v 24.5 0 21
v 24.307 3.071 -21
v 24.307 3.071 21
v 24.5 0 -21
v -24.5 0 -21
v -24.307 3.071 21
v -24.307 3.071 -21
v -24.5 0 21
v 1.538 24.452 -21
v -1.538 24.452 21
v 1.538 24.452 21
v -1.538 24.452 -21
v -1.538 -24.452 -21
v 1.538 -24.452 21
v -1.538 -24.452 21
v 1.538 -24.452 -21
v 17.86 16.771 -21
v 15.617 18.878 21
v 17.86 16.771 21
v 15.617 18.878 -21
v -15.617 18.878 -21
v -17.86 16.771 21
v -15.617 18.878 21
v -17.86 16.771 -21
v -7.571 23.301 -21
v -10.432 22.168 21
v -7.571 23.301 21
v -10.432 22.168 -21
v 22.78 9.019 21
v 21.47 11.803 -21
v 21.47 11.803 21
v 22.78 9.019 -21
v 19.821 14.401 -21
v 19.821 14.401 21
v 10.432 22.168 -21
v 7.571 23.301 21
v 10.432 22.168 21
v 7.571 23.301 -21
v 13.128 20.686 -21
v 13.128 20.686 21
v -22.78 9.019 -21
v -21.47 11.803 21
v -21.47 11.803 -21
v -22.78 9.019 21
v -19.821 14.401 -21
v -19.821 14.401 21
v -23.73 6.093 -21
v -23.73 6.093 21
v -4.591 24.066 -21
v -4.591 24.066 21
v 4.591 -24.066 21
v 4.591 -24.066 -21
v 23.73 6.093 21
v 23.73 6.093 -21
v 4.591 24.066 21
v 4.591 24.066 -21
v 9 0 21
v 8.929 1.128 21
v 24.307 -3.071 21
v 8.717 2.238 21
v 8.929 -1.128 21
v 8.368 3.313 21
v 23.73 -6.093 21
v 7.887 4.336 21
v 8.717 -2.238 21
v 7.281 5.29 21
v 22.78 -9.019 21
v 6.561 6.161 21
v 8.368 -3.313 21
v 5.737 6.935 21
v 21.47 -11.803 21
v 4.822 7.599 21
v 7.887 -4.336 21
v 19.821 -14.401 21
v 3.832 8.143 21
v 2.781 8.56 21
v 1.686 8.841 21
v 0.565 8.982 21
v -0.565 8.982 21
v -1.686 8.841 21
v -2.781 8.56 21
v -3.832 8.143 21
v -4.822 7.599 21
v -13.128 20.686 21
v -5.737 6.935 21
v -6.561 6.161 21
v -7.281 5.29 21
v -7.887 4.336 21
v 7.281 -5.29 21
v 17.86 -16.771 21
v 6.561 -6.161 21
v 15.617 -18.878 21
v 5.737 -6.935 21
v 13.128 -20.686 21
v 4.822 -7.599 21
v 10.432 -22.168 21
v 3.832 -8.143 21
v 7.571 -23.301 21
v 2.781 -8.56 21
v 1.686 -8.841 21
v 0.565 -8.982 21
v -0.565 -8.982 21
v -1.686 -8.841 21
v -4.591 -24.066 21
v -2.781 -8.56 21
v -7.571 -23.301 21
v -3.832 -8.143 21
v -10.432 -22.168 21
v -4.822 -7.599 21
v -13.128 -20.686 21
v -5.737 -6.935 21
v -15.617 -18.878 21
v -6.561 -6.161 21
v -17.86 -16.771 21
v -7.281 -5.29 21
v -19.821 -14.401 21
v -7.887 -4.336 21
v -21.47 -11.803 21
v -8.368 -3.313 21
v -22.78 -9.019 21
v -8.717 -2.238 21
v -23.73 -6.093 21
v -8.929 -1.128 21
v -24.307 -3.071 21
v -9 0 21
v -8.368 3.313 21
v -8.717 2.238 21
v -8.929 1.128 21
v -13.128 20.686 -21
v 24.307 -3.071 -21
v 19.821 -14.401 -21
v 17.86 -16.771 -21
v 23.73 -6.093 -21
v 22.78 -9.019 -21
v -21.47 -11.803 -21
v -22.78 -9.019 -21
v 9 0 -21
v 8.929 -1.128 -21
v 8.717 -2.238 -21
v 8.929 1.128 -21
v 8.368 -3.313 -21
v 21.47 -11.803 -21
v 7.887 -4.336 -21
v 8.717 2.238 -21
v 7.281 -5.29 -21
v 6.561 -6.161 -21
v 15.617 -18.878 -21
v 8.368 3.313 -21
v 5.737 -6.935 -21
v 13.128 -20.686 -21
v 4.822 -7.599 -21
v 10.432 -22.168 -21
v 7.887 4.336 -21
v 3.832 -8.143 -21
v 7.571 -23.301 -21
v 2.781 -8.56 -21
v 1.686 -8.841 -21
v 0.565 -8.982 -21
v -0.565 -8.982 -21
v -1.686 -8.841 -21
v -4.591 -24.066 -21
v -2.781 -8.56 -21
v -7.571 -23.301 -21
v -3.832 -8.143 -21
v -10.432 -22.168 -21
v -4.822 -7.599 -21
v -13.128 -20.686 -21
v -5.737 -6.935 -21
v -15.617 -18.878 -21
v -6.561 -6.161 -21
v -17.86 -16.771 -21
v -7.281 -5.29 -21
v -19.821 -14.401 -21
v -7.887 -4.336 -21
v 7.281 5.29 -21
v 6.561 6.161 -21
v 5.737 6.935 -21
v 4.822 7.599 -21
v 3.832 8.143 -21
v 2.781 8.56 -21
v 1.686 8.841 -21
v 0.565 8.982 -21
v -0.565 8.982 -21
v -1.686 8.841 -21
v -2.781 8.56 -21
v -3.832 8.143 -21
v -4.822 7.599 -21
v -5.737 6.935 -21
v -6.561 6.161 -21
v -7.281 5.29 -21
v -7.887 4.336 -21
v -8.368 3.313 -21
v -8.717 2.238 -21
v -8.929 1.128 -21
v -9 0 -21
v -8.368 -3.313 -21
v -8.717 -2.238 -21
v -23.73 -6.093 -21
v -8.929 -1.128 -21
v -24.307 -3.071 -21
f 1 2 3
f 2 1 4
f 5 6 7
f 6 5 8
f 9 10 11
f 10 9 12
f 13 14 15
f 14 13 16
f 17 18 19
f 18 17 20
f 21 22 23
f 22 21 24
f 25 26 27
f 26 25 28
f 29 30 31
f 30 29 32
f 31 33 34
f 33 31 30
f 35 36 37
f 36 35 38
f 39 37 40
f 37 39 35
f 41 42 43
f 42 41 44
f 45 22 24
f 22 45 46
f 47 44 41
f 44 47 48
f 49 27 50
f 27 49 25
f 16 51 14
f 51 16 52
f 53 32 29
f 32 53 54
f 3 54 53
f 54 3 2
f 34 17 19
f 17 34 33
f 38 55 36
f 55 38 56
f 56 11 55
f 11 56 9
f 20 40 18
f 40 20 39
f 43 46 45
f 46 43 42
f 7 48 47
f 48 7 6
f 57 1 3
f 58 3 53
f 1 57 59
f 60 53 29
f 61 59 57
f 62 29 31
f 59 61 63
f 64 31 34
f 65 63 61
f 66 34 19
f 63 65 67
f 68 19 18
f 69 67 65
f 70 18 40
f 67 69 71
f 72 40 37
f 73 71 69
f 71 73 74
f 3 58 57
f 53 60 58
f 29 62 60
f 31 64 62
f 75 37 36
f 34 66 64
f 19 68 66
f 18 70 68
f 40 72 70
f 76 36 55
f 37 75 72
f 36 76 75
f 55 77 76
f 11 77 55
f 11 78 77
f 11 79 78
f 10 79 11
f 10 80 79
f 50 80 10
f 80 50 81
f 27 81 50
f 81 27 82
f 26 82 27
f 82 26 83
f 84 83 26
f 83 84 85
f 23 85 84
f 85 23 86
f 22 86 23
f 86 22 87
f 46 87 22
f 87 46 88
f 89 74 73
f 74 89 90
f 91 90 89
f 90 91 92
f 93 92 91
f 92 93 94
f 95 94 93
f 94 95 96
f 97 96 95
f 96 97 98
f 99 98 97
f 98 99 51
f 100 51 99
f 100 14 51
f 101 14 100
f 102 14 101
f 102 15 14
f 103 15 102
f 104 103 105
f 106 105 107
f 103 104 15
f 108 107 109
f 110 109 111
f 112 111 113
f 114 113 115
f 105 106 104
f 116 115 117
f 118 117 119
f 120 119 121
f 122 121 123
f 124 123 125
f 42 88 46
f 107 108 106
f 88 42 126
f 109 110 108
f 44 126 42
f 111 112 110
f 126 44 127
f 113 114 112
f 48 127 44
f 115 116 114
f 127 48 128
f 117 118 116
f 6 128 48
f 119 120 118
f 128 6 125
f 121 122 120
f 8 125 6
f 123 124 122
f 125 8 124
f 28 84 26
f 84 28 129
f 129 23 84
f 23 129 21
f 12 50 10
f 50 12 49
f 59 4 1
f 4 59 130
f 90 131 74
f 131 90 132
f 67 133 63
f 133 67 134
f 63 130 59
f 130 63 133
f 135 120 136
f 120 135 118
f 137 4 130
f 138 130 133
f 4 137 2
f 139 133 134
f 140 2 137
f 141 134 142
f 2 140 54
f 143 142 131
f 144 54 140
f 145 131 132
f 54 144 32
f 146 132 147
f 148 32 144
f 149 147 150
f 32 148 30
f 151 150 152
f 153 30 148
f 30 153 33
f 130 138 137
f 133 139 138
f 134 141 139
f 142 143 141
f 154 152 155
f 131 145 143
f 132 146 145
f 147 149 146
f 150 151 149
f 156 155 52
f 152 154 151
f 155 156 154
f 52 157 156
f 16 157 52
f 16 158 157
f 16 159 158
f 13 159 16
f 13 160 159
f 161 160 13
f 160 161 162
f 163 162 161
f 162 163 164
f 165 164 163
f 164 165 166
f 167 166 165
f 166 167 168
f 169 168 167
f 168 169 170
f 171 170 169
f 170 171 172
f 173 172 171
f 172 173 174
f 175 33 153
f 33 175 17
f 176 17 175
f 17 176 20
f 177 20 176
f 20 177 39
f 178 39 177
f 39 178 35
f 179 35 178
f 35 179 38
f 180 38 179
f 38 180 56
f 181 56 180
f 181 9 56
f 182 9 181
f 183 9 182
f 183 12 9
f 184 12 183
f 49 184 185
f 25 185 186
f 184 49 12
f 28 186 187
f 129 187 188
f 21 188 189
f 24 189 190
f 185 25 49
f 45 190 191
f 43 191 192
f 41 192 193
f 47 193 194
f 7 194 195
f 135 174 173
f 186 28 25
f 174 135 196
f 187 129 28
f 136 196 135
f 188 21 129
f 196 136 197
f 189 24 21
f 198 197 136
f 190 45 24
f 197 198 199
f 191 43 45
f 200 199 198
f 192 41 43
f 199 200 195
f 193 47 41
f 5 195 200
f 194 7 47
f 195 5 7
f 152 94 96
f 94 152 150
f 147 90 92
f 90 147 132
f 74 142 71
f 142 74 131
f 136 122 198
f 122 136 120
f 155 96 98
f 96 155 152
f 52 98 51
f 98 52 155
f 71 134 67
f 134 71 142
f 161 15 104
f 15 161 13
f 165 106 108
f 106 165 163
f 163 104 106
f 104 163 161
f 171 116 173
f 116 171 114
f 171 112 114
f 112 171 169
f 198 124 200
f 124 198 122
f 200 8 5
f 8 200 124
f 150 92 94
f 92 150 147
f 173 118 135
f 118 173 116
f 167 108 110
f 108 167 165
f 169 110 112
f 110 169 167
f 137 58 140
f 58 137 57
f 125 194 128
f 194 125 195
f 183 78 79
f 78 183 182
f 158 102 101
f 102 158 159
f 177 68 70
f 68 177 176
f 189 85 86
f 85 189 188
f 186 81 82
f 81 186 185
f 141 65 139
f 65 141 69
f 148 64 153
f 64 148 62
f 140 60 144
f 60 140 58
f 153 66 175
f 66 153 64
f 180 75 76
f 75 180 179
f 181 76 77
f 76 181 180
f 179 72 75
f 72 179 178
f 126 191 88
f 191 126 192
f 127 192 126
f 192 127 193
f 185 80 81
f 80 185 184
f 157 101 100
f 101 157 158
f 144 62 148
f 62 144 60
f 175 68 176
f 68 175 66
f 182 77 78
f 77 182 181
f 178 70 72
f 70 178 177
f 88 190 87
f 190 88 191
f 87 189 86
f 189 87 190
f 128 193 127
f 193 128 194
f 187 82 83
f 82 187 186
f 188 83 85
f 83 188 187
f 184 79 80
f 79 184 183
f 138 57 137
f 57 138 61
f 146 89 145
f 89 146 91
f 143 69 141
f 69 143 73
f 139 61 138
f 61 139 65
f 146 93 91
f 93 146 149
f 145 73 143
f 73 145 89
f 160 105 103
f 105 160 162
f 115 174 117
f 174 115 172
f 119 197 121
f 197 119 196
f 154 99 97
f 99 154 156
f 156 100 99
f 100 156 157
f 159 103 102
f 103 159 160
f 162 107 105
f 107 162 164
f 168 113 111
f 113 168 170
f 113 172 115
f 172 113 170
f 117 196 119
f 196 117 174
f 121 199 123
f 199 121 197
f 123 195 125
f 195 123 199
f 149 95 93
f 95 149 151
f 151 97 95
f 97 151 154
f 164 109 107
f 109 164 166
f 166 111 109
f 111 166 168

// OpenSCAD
$fn = 50;


difference() {
	union() {
		translate(v = [0, 0, -21.0000000000]) {
			cylinder(h = 42, r = 24.5000000000);
		}
	}
	union() {
		translate(v = [0, 0, -100.0000000000]) {
			cylinder(h = 200, r = 9);
		}
	}
}
